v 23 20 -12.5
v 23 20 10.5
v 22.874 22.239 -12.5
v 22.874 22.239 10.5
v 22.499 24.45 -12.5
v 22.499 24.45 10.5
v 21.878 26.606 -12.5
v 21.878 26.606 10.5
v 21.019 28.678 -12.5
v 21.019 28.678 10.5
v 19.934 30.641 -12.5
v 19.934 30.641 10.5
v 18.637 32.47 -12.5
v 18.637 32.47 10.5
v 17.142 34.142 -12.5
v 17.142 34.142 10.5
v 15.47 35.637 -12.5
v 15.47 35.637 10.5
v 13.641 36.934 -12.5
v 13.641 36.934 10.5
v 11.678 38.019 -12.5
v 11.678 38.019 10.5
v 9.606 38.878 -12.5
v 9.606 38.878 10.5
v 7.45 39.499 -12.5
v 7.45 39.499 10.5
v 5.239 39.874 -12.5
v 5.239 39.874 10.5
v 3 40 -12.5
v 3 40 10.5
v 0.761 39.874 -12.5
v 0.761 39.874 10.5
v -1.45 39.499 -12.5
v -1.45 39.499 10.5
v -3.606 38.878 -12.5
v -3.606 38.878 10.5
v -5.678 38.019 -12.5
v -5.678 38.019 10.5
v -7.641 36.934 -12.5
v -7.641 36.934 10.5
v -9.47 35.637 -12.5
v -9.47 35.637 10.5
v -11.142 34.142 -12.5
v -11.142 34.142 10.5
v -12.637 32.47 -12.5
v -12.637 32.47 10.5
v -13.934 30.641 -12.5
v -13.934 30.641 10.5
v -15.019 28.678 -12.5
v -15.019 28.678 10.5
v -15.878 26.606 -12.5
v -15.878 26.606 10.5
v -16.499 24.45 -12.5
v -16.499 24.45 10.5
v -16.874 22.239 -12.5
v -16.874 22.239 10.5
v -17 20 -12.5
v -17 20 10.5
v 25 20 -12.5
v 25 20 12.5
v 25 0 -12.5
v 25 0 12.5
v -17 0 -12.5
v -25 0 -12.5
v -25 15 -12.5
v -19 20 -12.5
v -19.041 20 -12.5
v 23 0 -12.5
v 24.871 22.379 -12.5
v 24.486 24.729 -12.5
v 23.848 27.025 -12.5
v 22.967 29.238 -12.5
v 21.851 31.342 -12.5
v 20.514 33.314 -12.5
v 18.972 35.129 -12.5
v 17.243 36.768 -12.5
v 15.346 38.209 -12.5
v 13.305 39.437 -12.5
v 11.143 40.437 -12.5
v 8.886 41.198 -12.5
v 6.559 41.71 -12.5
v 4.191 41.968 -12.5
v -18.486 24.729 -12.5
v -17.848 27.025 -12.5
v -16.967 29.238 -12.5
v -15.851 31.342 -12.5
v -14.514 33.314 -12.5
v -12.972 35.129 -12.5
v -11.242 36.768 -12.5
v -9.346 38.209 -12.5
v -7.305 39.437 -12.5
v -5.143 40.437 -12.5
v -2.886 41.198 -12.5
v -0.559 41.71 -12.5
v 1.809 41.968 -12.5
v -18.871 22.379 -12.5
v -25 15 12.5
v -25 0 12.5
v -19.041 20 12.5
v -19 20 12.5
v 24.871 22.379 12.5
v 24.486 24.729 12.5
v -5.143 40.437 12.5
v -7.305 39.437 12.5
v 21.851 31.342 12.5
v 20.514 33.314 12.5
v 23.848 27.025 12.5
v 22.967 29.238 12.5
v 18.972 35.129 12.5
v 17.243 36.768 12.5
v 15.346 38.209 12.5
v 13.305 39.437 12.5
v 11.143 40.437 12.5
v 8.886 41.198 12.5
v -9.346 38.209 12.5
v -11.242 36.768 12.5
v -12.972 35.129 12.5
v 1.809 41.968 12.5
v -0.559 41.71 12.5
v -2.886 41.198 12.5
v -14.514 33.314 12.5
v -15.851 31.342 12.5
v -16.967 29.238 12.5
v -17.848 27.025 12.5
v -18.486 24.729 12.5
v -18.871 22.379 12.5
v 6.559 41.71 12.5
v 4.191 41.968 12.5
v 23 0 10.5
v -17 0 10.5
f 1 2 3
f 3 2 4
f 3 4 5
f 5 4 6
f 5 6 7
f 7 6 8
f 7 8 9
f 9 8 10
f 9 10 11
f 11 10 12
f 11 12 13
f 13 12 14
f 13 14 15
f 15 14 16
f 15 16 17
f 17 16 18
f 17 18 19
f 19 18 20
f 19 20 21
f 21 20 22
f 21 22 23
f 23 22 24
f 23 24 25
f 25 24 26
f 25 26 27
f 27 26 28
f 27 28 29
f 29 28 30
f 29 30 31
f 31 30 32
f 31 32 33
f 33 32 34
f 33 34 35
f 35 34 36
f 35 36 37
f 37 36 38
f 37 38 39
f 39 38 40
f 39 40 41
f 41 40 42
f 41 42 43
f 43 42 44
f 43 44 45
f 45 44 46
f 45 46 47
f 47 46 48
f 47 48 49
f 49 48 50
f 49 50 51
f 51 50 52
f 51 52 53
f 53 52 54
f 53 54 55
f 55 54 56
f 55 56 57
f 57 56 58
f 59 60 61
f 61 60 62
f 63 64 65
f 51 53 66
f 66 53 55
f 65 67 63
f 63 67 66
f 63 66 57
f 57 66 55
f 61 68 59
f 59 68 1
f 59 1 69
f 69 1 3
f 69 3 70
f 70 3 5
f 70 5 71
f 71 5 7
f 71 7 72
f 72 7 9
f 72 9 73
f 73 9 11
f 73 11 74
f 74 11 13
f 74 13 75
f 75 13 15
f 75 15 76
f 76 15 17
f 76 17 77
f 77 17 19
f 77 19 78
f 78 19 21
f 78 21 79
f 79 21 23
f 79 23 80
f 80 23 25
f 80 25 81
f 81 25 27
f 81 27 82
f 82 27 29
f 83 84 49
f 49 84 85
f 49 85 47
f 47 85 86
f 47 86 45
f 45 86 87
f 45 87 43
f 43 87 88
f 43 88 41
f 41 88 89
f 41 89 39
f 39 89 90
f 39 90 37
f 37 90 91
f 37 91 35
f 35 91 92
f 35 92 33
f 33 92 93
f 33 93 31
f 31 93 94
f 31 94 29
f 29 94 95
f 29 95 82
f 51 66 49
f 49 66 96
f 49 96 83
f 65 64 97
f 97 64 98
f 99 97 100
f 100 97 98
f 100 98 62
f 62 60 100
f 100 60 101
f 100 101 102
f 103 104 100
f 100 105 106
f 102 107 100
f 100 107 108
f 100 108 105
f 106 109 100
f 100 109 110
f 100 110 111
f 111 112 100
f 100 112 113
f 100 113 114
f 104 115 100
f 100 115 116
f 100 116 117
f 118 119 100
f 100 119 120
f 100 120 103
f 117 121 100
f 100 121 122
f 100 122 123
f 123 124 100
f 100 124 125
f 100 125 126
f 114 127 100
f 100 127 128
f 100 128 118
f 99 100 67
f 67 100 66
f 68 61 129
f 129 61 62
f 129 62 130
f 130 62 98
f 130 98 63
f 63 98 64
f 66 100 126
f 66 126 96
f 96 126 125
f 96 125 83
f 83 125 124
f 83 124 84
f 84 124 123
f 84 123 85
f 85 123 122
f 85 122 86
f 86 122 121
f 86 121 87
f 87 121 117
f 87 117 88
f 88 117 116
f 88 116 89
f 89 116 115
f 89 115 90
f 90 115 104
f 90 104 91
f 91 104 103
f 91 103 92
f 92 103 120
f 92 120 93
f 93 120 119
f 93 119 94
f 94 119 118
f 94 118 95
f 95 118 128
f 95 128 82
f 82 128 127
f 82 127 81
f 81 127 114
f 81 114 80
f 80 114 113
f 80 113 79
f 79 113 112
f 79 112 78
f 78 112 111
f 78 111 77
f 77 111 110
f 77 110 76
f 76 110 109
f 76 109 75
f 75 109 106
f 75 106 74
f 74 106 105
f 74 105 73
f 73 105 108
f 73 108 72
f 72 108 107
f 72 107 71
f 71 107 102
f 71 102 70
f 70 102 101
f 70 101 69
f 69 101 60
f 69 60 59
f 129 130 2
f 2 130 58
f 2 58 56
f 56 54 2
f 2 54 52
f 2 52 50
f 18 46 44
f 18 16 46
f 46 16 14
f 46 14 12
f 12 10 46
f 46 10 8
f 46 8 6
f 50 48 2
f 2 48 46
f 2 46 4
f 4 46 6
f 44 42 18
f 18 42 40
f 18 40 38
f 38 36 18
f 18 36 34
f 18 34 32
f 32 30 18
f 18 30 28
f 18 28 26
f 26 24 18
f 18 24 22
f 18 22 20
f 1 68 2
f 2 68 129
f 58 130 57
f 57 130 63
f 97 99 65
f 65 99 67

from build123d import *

# Parameters (mm, degrees)
CROQUIS1_W              = 50
CROQUIS1_H              = 25
SALIENTE_EXTRUIR1_DEPTH = 20
SALIENTE_EXTRUIR2_DEPTH = 25
SALIENTE_EXTRUIR3_DEPTH = 2
CROQUIS3_W              = 40
CROQUIS3_H              = 23
CORTAR_EXTRUIR1_DEPTH   = 20
CHAFL_N1_SIZE           = 5
CHAFL_N1_SIZE2          = 5.958767963


with BuildPart() as part:
    # Croquis1 → Saliente-Extruir1 (new body)
    with BuildSketch(Plane(origin=(0, 0, 0), x_dir=(1, 0, 0), z_dir=(0, 1, 0))):
        Rectangle(CROQUIS1_W, CROQUIS1_H)
    extrude(amount=SALIENTE_EXTRUIR1_DEPTH)

    # Croquis2 → Saliente-Extruir2 (add)
    with BuildSketch(Plane.XY.offset(12.5)):
        with BuildLine():
            ThreePointArc((25, 20), (3, 42), (-19, 20))
            Line((-19, 20), (-17, 20))
            ThreePointArc((-17, 20), (3, 40), (23, 20))
            Line((23, 20), (25, 20))
        make_face()
    extrude(amount=-SALIENTE_EXTRUIR2_DEPTH)

    # Croquis2<6> → Saliente-Extruir3 (add)
    with BuildSketch(Plane.XY.offset(12.5)):
        with BuildLine():
            ThreePointArc((23, 20), (3, 40), (-17, 20))
            Line((-17, 20), (23, 20))
        make_face()
    extrude(amount=-SALIENTE_EXTRUIR3_DEPTH)

    # Croquis3 → Cortar-Extruir1 (cut)
    with BuildSketch(Plane(origin=(0, 20, 0), x_dir=(1, 0, 0), z_dir=(0, 1, 0))):
        with Locations((3, 1)):
            Rectangle(CROQUIS3_W, CROQUIS3_H)
    extrude(amount=-CORTAR_EXTRUIR1_DEPTH, mode=Mode.SUBTRACT)

    # Chaflán1
    chafl_n1_edges = [part.edges().sort_by_distance(p)[0] for p in [
        (-25, 20, 0),
    ]]
    chafl_n1_side = [part.faces().sort_by_distance(p)[0] for p in [
        (-25, 10, 0),
    ]]
    chamfer(chafl_n1_edges, length=CHAFL_N1_SIZE, length2=CHAFL_N1_SIZE2, reference=chafl_n1_side[0])


solid = part.part
